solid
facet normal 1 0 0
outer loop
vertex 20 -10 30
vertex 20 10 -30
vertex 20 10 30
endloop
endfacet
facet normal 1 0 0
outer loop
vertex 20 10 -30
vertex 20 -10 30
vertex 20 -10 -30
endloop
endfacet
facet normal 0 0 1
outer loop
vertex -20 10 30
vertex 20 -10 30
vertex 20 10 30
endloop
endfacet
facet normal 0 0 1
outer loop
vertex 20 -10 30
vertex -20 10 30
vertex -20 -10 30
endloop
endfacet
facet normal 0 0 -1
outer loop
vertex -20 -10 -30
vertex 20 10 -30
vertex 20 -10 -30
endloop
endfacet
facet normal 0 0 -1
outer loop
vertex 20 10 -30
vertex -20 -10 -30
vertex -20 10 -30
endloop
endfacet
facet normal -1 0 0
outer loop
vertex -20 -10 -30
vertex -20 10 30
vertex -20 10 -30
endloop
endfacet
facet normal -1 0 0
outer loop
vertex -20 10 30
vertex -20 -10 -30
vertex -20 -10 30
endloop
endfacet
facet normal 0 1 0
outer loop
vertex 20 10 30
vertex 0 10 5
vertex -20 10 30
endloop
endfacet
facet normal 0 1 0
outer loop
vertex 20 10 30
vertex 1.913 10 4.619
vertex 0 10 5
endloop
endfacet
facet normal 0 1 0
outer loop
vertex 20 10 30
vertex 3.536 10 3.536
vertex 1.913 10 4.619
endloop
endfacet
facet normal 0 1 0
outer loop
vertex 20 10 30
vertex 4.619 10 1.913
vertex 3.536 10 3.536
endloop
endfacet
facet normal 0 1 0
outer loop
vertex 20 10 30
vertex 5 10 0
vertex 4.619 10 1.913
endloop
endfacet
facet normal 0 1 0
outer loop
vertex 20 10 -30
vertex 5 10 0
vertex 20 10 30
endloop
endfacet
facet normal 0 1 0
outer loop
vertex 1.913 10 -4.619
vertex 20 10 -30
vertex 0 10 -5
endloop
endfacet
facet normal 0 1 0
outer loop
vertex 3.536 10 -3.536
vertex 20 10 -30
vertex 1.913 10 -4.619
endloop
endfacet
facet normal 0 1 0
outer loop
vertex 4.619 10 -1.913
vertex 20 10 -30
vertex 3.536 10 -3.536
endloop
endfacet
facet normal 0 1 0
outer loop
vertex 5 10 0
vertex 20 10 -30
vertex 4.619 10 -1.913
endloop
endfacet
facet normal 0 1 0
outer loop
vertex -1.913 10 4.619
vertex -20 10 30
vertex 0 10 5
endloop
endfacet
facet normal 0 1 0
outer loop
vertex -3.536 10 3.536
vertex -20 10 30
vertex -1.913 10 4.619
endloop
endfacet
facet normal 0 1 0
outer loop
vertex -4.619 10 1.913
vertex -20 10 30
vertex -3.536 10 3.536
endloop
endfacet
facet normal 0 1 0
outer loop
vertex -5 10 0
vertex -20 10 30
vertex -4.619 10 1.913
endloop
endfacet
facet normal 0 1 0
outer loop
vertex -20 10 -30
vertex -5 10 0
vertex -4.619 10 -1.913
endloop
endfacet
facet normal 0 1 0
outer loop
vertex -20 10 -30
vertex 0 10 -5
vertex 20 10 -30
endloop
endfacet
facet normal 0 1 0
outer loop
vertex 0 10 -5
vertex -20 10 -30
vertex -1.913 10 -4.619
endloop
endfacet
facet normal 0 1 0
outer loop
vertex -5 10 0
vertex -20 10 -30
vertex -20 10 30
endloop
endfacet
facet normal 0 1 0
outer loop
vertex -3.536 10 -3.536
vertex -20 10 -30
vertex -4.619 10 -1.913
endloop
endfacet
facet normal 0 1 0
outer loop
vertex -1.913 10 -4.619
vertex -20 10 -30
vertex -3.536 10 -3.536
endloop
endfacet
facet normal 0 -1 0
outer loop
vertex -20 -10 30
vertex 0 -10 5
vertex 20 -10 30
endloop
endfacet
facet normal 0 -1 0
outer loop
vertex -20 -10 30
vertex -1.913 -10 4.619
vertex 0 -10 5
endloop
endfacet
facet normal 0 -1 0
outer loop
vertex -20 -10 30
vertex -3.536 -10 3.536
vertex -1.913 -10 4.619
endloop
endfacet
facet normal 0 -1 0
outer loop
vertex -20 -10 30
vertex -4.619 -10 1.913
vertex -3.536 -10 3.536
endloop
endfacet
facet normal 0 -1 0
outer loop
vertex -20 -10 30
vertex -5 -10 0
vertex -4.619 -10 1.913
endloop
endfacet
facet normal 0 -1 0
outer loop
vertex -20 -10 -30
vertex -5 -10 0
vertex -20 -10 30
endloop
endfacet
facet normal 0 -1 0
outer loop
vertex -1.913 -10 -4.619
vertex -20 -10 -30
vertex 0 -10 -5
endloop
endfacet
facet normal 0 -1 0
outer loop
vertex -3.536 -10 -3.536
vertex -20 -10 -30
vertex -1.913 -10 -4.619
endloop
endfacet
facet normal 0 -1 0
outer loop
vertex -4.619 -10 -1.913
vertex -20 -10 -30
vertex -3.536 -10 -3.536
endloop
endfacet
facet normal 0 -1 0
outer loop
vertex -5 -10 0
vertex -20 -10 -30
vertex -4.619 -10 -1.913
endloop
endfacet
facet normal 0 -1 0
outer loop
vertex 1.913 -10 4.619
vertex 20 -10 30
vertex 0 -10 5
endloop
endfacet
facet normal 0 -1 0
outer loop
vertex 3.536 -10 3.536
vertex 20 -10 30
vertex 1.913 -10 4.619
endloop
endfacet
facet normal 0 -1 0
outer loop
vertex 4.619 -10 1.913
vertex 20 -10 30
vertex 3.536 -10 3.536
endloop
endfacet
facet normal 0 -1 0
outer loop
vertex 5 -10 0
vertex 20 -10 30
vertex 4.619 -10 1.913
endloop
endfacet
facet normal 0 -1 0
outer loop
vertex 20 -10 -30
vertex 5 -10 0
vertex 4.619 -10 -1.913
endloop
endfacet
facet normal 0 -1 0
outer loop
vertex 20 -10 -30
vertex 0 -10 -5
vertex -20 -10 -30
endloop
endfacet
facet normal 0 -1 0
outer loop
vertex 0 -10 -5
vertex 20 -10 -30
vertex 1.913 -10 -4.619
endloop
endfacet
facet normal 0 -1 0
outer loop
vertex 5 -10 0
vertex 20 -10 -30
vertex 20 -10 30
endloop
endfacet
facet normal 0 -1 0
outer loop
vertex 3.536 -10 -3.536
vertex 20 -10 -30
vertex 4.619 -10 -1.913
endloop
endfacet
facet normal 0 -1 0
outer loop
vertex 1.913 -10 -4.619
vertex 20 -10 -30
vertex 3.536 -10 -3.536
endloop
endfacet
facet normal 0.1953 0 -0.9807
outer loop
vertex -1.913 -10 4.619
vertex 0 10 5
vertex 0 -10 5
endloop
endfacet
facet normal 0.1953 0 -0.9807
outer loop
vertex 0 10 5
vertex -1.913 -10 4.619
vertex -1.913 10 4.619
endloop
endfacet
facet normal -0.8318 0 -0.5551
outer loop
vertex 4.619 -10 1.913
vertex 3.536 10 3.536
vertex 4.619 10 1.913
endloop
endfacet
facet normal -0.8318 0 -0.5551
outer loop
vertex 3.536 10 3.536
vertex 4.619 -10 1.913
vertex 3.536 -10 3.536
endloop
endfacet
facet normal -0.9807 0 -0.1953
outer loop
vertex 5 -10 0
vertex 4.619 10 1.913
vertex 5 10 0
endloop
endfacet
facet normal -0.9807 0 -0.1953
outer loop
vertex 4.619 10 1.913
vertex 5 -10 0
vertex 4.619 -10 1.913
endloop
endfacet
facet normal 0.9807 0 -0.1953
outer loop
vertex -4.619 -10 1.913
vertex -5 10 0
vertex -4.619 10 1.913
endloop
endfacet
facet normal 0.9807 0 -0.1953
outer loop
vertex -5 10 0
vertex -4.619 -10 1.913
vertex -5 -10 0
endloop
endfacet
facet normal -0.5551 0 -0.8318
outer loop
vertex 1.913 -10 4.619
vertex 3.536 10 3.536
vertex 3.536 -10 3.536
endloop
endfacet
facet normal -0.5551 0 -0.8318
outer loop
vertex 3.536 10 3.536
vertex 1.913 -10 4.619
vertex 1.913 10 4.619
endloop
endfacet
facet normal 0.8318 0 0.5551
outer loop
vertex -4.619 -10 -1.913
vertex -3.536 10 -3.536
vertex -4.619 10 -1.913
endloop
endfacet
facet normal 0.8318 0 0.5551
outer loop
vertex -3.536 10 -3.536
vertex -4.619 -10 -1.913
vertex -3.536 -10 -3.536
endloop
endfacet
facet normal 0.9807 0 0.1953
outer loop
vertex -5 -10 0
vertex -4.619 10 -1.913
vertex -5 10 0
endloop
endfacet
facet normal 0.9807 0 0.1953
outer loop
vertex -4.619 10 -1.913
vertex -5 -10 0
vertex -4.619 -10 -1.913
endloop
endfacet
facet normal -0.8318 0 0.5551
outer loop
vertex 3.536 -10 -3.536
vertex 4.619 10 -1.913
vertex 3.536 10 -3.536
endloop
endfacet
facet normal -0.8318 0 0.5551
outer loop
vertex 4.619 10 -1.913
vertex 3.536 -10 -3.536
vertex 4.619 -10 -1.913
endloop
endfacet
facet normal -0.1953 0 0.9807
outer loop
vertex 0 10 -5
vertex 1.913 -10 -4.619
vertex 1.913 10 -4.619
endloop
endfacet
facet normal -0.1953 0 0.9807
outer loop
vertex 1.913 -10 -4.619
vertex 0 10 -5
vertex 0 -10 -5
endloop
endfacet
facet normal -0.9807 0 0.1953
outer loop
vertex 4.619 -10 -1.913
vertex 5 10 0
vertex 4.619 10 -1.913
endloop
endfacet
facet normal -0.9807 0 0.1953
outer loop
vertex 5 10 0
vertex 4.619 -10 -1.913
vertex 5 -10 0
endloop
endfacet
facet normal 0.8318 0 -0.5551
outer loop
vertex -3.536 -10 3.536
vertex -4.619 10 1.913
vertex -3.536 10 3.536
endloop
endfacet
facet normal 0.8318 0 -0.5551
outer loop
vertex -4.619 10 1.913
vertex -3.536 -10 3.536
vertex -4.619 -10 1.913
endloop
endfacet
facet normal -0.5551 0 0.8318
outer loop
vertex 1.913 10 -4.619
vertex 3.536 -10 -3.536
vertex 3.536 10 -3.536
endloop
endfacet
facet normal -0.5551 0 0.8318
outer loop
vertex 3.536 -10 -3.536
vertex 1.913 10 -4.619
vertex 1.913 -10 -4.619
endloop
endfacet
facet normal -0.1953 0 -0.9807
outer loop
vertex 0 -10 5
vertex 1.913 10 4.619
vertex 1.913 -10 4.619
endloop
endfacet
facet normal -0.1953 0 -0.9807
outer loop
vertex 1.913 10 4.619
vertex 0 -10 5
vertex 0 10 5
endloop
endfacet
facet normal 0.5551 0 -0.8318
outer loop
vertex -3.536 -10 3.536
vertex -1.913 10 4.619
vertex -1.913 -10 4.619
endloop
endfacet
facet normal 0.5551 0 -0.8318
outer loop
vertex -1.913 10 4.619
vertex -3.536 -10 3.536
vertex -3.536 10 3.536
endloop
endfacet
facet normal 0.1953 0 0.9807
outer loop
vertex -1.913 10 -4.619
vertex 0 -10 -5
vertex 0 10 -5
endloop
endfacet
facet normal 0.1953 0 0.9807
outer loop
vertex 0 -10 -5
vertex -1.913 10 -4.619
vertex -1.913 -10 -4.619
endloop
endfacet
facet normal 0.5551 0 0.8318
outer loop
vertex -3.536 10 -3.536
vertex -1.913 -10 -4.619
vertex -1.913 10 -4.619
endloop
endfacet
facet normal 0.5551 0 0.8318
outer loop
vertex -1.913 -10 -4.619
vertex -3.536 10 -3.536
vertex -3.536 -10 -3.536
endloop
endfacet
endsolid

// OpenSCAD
// Dimensions for the rectangular block
block_length = 40;  // Length of the block
block_width = 20;   // Width of the block
block_height = 60;  // Height of the block

// Dimensions for the circular hole
hole_diameter = 10; // Diameter of the hole

// Main module to create the rectangular block with a circular hole
module rectangular_block() {
    // Create the rectangular block
    difference() {
        // Base block
        cube([block_length, block_width, block_height], center = true);
        
        // Circular hole
        rotate([90, 0, 0])  // Align the hole perpendicular to the largest face
        translate([0, 0, 0])  // Center the hole along the central axis
        cylinder(r = hole_diameter / 2, h = block_length + 2, center = true);
    }
}

// Call the module to render the model
rectangular_block();
